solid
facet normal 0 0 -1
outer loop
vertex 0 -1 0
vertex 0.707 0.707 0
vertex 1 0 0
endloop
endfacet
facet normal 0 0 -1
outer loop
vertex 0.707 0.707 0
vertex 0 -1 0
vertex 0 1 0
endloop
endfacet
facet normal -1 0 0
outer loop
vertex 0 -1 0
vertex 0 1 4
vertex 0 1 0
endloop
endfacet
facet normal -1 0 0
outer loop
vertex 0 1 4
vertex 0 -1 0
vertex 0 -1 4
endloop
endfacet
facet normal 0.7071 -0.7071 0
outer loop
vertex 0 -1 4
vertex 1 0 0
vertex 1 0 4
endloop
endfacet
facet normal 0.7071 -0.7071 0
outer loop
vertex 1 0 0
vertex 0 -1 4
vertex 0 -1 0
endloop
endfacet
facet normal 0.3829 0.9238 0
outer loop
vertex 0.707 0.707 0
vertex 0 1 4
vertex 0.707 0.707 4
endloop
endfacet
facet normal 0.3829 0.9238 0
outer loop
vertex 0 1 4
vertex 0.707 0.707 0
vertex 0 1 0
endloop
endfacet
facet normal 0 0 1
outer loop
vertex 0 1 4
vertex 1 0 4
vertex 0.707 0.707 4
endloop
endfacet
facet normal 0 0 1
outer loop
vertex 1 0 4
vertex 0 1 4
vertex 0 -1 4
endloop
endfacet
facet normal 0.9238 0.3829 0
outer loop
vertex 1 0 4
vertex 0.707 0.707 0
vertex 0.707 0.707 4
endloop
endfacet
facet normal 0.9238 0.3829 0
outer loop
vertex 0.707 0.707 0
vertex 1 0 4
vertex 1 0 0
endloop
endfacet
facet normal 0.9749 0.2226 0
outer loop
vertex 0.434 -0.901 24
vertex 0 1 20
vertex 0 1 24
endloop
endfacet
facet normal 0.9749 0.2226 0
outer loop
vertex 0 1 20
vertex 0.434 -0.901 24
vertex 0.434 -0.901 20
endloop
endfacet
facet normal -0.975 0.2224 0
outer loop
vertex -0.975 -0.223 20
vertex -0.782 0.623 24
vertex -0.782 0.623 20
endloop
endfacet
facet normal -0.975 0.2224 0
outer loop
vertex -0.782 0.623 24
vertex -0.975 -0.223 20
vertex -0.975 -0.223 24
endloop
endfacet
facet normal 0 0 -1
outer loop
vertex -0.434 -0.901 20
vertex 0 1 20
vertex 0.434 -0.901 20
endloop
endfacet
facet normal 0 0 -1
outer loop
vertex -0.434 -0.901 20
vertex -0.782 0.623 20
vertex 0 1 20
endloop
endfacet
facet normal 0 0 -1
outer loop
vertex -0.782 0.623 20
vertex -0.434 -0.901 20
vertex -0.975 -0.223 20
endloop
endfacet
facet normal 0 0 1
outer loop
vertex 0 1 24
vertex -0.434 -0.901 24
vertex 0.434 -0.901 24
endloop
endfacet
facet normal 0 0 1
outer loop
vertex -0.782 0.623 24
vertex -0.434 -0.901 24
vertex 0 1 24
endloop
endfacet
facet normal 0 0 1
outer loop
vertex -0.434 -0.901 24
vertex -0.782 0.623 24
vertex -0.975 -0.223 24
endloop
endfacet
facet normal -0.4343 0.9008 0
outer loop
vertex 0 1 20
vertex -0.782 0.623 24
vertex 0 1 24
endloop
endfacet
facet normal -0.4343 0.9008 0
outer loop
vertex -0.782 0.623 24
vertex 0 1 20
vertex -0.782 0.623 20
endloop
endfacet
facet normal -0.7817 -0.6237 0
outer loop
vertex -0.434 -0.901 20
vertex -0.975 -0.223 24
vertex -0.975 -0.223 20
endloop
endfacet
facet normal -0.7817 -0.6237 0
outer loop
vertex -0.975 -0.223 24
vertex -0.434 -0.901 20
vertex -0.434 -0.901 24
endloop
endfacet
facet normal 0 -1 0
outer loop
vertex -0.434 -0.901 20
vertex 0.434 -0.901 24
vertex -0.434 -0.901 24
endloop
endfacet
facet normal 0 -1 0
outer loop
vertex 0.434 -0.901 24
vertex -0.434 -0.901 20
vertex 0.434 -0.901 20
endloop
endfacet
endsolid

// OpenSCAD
union() {
	translate(v = [0, 0, 0]) {
		linear_extrude(height = 4) {
			polygon(paths = [[0, 1, 2, 3, 4, 5, 6, 7]], points = [[0.0, 1.0], [0.707106781187, 0.707106781187], [-2.44929359829e-16, 1.0], [3.67394039744e-16, -1.0], [-1.0, -4.28626379702e-16], [6.12323399574e-16, -1.0], [1.0, -7.35407060125e-16], [0.707106781187, 0.707106781187]]);
		}
	}
	translate(v = [0, 0, 4]) {
		linear_extrude(height = 4) {
			polygon(paths = [[0, 1]], points = [[2.9416282405e-15, 1.0], [9.78479478045e-16, -1.0]]);
		}
	}
	translate(v = [0, 0, 8]) {
		linear_extrude(height = 4) {
			polygon(paths = [[0, 1]], points = [[-2.44929359829e-16, 1.0], [-1.95993006315e-14, 1.0]]);
		}
	}
	translate(v = [0, 0, 12]) {
		linear_extrude(height = 4) {
			polygon(paths = [[0]], points = [[-1.56779549516e-14, 1.0]]);
		}
	}
	translate(v = [0, 0, 16]) {
		linear_extrude(height = 4) {
			polygon(paths = [[0]], points = [[2.47592254635e-18, 1.0]]);
		}
	}
	translate(v = [0, 0, 20]) {
		linear_extrude(height = 4) {
			polygon(paths = [[0, 1, 2, 3, 4, 5, 6]], points = [[-2.44929359829e-16, 1.0], [0.433883739118, -0.900968867902], [-0.433883739118, -0.900968867902], [0.433883739118, -0.900968867902], [-0.433883739118, -0.900968867902], [-0.974927912182, -0.222520933956], [-0.781831482468, 0.623489801859]]);
		}
	}
}
